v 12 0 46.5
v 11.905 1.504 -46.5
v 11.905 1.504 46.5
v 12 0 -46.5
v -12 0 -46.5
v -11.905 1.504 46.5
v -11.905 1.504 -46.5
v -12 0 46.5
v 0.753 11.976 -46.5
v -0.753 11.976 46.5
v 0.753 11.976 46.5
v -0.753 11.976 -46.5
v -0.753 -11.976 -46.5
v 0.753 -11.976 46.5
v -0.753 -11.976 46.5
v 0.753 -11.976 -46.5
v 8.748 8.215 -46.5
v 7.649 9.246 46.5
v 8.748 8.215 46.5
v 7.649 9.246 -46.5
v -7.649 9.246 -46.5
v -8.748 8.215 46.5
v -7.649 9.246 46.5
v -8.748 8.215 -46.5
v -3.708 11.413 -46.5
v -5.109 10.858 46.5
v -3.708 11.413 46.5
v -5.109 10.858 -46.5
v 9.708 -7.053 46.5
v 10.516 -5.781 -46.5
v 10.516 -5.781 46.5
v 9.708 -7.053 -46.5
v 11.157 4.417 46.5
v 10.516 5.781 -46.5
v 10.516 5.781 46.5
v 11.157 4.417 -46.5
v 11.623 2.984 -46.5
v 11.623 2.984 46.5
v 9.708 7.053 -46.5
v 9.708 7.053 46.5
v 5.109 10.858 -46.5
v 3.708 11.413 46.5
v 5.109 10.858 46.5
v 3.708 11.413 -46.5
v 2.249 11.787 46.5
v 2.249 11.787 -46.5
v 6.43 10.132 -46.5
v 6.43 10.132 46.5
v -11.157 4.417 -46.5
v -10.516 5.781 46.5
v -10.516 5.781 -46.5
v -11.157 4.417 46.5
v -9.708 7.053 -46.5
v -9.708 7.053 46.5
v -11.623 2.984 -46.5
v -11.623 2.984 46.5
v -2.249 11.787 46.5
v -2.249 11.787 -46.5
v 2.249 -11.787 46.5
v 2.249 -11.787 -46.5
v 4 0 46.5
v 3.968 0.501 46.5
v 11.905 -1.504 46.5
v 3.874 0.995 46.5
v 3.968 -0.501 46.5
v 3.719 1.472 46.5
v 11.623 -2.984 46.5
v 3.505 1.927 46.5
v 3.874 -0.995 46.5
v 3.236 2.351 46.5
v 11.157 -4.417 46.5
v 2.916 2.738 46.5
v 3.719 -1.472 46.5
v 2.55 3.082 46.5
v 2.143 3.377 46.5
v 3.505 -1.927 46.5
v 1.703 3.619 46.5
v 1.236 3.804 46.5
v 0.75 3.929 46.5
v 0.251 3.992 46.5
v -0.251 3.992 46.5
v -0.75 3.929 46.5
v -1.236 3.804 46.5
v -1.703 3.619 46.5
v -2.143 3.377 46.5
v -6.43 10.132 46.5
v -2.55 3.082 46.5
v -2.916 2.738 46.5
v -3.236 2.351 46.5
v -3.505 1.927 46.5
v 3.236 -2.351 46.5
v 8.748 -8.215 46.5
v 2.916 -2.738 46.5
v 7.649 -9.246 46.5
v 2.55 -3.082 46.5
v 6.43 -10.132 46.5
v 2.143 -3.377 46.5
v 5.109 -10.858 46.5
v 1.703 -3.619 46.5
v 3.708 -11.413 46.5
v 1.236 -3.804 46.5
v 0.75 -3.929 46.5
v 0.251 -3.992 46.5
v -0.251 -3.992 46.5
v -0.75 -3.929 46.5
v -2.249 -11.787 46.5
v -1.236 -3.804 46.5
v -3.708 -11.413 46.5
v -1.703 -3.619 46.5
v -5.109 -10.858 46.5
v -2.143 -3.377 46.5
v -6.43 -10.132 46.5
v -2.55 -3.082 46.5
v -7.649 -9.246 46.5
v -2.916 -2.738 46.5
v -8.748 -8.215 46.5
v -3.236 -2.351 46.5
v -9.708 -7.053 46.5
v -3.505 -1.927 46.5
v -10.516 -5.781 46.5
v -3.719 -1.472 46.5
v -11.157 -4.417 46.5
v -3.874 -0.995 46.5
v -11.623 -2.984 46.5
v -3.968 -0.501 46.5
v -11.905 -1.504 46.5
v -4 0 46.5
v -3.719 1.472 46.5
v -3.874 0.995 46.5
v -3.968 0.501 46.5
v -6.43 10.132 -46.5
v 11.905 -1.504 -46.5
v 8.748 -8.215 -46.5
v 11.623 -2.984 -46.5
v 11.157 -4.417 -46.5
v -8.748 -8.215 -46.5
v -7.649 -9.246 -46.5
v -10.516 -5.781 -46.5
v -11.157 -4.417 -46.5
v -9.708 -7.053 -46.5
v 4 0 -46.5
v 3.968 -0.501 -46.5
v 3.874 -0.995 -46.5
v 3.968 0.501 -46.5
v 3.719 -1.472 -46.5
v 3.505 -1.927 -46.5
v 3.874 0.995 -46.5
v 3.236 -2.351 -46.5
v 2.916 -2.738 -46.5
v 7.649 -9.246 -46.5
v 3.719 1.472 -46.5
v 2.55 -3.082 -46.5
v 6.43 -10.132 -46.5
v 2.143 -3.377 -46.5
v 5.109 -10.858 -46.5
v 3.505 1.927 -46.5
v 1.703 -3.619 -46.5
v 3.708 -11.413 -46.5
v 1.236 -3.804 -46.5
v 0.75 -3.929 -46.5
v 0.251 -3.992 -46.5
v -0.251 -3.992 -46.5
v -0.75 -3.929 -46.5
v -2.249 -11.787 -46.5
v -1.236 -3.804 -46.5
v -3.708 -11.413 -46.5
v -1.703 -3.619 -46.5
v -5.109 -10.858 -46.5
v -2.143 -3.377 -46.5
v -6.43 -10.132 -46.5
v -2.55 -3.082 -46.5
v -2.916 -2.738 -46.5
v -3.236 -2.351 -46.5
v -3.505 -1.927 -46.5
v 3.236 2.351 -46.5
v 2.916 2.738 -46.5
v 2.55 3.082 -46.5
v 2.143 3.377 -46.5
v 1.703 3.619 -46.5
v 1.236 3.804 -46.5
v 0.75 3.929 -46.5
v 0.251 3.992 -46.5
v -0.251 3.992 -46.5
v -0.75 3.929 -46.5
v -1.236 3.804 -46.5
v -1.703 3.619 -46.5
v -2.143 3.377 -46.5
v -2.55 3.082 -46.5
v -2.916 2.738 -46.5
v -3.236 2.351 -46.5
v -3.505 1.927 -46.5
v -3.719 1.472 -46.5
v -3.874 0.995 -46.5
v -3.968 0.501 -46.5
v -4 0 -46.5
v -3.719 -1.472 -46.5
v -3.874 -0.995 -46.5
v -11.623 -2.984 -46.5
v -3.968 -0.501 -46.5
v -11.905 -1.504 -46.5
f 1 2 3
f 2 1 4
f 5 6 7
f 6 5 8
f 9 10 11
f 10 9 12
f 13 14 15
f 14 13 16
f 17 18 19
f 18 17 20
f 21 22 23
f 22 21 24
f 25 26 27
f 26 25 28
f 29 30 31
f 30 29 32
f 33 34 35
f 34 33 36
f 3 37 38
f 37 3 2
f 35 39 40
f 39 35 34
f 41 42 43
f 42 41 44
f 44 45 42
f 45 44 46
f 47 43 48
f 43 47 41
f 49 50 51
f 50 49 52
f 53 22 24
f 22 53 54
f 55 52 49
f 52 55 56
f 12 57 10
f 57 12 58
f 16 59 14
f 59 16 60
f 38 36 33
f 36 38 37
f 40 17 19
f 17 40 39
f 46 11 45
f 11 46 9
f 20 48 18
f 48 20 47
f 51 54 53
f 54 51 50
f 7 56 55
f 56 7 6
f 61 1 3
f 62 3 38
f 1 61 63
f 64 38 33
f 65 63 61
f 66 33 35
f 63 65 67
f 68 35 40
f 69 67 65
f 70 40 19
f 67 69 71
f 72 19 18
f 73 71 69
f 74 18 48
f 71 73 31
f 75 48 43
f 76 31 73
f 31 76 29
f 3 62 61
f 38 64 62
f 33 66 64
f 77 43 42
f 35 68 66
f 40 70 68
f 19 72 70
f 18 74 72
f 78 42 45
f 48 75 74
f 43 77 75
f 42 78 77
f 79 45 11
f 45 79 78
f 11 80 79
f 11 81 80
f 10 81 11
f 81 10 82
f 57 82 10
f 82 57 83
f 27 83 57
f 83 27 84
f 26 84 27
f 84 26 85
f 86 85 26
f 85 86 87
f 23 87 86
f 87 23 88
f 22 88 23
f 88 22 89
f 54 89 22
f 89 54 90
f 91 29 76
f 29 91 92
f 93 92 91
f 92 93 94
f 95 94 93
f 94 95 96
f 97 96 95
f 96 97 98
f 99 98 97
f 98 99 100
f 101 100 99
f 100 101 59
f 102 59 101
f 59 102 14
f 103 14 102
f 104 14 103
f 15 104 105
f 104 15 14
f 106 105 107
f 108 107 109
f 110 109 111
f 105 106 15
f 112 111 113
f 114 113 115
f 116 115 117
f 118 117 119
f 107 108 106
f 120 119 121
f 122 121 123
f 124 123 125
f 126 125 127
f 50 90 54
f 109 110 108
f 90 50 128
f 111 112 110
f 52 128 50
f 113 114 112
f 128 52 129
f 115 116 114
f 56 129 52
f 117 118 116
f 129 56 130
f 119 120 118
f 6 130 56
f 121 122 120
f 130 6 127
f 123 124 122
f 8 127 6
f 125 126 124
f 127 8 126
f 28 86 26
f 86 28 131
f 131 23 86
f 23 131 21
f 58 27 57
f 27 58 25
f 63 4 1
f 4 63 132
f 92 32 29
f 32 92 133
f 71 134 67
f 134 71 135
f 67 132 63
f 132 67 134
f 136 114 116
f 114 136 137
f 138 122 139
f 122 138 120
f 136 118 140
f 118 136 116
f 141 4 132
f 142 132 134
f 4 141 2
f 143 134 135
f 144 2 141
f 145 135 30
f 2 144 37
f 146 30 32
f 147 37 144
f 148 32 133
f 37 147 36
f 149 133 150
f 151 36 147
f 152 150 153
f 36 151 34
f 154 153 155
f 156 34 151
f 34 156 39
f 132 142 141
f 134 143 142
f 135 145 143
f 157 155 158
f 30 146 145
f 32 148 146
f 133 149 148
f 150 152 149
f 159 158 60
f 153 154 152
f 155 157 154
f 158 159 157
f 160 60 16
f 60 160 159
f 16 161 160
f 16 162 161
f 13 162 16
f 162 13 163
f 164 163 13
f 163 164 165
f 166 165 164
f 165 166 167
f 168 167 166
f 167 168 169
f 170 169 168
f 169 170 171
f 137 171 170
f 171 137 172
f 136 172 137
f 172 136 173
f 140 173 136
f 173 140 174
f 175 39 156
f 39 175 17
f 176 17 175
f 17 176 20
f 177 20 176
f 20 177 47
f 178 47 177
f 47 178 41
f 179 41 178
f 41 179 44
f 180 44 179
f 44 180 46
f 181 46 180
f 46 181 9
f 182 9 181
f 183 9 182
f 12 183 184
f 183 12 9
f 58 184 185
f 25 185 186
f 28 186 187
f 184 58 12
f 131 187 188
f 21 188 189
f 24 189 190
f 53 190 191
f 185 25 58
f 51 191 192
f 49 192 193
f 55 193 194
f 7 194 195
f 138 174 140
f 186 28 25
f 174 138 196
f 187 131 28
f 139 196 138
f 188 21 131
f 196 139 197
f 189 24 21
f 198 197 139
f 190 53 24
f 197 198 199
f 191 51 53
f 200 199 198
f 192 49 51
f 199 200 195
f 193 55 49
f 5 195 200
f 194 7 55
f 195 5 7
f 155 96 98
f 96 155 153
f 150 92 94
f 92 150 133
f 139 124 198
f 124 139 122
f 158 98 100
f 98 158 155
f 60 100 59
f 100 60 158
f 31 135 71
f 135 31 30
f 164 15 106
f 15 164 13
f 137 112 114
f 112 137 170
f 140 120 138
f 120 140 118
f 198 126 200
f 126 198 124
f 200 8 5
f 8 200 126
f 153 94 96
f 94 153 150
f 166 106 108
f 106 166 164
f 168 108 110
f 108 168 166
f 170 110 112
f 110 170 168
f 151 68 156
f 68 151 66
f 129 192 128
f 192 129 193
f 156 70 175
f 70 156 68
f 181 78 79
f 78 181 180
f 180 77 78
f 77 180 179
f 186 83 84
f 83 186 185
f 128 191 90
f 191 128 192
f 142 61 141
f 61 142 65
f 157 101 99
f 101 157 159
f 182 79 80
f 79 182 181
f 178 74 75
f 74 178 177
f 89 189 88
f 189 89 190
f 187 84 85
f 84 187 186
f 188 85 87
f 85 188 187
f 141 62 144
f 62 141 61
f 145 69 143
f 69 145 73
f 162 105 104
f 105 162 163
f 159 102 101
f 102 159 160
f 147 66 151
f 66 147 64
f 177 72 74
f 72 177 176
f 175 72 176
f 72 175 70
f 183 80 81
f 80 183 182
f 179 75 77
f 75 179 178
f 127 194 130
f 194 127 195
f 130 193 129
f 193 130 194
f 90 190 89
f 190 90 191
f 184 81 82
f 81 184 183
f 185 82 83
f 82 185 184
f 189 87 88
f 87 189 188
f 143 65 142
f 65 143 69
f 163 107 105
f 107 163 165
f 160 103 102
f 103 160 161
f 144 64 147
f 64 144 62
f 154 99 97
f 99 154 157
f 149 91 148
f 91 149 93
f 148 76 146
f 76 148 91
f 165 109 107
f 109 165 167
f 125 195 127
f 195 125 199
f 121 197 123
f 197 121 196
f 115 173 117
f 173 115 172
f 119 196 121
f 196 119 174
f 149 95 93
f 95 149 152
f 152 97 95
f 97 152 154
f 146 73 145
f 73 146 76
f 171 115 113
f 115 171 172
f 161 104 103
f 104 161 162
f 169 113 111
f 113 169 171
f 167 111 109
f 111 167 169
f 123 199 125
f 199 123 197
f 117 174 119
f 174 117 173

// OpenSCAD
$fn = 50;


difference() {
	union() {
		translate(v = [0, 0, -46.5000000000]) {
			cylinder(h = 93, r = 12.0000000000);
		}
	}
	union() {
		translate(v = [0, 0, -100.0000000000]) {
			cylinder(h = 200, r = 4);
		}
	}
}
